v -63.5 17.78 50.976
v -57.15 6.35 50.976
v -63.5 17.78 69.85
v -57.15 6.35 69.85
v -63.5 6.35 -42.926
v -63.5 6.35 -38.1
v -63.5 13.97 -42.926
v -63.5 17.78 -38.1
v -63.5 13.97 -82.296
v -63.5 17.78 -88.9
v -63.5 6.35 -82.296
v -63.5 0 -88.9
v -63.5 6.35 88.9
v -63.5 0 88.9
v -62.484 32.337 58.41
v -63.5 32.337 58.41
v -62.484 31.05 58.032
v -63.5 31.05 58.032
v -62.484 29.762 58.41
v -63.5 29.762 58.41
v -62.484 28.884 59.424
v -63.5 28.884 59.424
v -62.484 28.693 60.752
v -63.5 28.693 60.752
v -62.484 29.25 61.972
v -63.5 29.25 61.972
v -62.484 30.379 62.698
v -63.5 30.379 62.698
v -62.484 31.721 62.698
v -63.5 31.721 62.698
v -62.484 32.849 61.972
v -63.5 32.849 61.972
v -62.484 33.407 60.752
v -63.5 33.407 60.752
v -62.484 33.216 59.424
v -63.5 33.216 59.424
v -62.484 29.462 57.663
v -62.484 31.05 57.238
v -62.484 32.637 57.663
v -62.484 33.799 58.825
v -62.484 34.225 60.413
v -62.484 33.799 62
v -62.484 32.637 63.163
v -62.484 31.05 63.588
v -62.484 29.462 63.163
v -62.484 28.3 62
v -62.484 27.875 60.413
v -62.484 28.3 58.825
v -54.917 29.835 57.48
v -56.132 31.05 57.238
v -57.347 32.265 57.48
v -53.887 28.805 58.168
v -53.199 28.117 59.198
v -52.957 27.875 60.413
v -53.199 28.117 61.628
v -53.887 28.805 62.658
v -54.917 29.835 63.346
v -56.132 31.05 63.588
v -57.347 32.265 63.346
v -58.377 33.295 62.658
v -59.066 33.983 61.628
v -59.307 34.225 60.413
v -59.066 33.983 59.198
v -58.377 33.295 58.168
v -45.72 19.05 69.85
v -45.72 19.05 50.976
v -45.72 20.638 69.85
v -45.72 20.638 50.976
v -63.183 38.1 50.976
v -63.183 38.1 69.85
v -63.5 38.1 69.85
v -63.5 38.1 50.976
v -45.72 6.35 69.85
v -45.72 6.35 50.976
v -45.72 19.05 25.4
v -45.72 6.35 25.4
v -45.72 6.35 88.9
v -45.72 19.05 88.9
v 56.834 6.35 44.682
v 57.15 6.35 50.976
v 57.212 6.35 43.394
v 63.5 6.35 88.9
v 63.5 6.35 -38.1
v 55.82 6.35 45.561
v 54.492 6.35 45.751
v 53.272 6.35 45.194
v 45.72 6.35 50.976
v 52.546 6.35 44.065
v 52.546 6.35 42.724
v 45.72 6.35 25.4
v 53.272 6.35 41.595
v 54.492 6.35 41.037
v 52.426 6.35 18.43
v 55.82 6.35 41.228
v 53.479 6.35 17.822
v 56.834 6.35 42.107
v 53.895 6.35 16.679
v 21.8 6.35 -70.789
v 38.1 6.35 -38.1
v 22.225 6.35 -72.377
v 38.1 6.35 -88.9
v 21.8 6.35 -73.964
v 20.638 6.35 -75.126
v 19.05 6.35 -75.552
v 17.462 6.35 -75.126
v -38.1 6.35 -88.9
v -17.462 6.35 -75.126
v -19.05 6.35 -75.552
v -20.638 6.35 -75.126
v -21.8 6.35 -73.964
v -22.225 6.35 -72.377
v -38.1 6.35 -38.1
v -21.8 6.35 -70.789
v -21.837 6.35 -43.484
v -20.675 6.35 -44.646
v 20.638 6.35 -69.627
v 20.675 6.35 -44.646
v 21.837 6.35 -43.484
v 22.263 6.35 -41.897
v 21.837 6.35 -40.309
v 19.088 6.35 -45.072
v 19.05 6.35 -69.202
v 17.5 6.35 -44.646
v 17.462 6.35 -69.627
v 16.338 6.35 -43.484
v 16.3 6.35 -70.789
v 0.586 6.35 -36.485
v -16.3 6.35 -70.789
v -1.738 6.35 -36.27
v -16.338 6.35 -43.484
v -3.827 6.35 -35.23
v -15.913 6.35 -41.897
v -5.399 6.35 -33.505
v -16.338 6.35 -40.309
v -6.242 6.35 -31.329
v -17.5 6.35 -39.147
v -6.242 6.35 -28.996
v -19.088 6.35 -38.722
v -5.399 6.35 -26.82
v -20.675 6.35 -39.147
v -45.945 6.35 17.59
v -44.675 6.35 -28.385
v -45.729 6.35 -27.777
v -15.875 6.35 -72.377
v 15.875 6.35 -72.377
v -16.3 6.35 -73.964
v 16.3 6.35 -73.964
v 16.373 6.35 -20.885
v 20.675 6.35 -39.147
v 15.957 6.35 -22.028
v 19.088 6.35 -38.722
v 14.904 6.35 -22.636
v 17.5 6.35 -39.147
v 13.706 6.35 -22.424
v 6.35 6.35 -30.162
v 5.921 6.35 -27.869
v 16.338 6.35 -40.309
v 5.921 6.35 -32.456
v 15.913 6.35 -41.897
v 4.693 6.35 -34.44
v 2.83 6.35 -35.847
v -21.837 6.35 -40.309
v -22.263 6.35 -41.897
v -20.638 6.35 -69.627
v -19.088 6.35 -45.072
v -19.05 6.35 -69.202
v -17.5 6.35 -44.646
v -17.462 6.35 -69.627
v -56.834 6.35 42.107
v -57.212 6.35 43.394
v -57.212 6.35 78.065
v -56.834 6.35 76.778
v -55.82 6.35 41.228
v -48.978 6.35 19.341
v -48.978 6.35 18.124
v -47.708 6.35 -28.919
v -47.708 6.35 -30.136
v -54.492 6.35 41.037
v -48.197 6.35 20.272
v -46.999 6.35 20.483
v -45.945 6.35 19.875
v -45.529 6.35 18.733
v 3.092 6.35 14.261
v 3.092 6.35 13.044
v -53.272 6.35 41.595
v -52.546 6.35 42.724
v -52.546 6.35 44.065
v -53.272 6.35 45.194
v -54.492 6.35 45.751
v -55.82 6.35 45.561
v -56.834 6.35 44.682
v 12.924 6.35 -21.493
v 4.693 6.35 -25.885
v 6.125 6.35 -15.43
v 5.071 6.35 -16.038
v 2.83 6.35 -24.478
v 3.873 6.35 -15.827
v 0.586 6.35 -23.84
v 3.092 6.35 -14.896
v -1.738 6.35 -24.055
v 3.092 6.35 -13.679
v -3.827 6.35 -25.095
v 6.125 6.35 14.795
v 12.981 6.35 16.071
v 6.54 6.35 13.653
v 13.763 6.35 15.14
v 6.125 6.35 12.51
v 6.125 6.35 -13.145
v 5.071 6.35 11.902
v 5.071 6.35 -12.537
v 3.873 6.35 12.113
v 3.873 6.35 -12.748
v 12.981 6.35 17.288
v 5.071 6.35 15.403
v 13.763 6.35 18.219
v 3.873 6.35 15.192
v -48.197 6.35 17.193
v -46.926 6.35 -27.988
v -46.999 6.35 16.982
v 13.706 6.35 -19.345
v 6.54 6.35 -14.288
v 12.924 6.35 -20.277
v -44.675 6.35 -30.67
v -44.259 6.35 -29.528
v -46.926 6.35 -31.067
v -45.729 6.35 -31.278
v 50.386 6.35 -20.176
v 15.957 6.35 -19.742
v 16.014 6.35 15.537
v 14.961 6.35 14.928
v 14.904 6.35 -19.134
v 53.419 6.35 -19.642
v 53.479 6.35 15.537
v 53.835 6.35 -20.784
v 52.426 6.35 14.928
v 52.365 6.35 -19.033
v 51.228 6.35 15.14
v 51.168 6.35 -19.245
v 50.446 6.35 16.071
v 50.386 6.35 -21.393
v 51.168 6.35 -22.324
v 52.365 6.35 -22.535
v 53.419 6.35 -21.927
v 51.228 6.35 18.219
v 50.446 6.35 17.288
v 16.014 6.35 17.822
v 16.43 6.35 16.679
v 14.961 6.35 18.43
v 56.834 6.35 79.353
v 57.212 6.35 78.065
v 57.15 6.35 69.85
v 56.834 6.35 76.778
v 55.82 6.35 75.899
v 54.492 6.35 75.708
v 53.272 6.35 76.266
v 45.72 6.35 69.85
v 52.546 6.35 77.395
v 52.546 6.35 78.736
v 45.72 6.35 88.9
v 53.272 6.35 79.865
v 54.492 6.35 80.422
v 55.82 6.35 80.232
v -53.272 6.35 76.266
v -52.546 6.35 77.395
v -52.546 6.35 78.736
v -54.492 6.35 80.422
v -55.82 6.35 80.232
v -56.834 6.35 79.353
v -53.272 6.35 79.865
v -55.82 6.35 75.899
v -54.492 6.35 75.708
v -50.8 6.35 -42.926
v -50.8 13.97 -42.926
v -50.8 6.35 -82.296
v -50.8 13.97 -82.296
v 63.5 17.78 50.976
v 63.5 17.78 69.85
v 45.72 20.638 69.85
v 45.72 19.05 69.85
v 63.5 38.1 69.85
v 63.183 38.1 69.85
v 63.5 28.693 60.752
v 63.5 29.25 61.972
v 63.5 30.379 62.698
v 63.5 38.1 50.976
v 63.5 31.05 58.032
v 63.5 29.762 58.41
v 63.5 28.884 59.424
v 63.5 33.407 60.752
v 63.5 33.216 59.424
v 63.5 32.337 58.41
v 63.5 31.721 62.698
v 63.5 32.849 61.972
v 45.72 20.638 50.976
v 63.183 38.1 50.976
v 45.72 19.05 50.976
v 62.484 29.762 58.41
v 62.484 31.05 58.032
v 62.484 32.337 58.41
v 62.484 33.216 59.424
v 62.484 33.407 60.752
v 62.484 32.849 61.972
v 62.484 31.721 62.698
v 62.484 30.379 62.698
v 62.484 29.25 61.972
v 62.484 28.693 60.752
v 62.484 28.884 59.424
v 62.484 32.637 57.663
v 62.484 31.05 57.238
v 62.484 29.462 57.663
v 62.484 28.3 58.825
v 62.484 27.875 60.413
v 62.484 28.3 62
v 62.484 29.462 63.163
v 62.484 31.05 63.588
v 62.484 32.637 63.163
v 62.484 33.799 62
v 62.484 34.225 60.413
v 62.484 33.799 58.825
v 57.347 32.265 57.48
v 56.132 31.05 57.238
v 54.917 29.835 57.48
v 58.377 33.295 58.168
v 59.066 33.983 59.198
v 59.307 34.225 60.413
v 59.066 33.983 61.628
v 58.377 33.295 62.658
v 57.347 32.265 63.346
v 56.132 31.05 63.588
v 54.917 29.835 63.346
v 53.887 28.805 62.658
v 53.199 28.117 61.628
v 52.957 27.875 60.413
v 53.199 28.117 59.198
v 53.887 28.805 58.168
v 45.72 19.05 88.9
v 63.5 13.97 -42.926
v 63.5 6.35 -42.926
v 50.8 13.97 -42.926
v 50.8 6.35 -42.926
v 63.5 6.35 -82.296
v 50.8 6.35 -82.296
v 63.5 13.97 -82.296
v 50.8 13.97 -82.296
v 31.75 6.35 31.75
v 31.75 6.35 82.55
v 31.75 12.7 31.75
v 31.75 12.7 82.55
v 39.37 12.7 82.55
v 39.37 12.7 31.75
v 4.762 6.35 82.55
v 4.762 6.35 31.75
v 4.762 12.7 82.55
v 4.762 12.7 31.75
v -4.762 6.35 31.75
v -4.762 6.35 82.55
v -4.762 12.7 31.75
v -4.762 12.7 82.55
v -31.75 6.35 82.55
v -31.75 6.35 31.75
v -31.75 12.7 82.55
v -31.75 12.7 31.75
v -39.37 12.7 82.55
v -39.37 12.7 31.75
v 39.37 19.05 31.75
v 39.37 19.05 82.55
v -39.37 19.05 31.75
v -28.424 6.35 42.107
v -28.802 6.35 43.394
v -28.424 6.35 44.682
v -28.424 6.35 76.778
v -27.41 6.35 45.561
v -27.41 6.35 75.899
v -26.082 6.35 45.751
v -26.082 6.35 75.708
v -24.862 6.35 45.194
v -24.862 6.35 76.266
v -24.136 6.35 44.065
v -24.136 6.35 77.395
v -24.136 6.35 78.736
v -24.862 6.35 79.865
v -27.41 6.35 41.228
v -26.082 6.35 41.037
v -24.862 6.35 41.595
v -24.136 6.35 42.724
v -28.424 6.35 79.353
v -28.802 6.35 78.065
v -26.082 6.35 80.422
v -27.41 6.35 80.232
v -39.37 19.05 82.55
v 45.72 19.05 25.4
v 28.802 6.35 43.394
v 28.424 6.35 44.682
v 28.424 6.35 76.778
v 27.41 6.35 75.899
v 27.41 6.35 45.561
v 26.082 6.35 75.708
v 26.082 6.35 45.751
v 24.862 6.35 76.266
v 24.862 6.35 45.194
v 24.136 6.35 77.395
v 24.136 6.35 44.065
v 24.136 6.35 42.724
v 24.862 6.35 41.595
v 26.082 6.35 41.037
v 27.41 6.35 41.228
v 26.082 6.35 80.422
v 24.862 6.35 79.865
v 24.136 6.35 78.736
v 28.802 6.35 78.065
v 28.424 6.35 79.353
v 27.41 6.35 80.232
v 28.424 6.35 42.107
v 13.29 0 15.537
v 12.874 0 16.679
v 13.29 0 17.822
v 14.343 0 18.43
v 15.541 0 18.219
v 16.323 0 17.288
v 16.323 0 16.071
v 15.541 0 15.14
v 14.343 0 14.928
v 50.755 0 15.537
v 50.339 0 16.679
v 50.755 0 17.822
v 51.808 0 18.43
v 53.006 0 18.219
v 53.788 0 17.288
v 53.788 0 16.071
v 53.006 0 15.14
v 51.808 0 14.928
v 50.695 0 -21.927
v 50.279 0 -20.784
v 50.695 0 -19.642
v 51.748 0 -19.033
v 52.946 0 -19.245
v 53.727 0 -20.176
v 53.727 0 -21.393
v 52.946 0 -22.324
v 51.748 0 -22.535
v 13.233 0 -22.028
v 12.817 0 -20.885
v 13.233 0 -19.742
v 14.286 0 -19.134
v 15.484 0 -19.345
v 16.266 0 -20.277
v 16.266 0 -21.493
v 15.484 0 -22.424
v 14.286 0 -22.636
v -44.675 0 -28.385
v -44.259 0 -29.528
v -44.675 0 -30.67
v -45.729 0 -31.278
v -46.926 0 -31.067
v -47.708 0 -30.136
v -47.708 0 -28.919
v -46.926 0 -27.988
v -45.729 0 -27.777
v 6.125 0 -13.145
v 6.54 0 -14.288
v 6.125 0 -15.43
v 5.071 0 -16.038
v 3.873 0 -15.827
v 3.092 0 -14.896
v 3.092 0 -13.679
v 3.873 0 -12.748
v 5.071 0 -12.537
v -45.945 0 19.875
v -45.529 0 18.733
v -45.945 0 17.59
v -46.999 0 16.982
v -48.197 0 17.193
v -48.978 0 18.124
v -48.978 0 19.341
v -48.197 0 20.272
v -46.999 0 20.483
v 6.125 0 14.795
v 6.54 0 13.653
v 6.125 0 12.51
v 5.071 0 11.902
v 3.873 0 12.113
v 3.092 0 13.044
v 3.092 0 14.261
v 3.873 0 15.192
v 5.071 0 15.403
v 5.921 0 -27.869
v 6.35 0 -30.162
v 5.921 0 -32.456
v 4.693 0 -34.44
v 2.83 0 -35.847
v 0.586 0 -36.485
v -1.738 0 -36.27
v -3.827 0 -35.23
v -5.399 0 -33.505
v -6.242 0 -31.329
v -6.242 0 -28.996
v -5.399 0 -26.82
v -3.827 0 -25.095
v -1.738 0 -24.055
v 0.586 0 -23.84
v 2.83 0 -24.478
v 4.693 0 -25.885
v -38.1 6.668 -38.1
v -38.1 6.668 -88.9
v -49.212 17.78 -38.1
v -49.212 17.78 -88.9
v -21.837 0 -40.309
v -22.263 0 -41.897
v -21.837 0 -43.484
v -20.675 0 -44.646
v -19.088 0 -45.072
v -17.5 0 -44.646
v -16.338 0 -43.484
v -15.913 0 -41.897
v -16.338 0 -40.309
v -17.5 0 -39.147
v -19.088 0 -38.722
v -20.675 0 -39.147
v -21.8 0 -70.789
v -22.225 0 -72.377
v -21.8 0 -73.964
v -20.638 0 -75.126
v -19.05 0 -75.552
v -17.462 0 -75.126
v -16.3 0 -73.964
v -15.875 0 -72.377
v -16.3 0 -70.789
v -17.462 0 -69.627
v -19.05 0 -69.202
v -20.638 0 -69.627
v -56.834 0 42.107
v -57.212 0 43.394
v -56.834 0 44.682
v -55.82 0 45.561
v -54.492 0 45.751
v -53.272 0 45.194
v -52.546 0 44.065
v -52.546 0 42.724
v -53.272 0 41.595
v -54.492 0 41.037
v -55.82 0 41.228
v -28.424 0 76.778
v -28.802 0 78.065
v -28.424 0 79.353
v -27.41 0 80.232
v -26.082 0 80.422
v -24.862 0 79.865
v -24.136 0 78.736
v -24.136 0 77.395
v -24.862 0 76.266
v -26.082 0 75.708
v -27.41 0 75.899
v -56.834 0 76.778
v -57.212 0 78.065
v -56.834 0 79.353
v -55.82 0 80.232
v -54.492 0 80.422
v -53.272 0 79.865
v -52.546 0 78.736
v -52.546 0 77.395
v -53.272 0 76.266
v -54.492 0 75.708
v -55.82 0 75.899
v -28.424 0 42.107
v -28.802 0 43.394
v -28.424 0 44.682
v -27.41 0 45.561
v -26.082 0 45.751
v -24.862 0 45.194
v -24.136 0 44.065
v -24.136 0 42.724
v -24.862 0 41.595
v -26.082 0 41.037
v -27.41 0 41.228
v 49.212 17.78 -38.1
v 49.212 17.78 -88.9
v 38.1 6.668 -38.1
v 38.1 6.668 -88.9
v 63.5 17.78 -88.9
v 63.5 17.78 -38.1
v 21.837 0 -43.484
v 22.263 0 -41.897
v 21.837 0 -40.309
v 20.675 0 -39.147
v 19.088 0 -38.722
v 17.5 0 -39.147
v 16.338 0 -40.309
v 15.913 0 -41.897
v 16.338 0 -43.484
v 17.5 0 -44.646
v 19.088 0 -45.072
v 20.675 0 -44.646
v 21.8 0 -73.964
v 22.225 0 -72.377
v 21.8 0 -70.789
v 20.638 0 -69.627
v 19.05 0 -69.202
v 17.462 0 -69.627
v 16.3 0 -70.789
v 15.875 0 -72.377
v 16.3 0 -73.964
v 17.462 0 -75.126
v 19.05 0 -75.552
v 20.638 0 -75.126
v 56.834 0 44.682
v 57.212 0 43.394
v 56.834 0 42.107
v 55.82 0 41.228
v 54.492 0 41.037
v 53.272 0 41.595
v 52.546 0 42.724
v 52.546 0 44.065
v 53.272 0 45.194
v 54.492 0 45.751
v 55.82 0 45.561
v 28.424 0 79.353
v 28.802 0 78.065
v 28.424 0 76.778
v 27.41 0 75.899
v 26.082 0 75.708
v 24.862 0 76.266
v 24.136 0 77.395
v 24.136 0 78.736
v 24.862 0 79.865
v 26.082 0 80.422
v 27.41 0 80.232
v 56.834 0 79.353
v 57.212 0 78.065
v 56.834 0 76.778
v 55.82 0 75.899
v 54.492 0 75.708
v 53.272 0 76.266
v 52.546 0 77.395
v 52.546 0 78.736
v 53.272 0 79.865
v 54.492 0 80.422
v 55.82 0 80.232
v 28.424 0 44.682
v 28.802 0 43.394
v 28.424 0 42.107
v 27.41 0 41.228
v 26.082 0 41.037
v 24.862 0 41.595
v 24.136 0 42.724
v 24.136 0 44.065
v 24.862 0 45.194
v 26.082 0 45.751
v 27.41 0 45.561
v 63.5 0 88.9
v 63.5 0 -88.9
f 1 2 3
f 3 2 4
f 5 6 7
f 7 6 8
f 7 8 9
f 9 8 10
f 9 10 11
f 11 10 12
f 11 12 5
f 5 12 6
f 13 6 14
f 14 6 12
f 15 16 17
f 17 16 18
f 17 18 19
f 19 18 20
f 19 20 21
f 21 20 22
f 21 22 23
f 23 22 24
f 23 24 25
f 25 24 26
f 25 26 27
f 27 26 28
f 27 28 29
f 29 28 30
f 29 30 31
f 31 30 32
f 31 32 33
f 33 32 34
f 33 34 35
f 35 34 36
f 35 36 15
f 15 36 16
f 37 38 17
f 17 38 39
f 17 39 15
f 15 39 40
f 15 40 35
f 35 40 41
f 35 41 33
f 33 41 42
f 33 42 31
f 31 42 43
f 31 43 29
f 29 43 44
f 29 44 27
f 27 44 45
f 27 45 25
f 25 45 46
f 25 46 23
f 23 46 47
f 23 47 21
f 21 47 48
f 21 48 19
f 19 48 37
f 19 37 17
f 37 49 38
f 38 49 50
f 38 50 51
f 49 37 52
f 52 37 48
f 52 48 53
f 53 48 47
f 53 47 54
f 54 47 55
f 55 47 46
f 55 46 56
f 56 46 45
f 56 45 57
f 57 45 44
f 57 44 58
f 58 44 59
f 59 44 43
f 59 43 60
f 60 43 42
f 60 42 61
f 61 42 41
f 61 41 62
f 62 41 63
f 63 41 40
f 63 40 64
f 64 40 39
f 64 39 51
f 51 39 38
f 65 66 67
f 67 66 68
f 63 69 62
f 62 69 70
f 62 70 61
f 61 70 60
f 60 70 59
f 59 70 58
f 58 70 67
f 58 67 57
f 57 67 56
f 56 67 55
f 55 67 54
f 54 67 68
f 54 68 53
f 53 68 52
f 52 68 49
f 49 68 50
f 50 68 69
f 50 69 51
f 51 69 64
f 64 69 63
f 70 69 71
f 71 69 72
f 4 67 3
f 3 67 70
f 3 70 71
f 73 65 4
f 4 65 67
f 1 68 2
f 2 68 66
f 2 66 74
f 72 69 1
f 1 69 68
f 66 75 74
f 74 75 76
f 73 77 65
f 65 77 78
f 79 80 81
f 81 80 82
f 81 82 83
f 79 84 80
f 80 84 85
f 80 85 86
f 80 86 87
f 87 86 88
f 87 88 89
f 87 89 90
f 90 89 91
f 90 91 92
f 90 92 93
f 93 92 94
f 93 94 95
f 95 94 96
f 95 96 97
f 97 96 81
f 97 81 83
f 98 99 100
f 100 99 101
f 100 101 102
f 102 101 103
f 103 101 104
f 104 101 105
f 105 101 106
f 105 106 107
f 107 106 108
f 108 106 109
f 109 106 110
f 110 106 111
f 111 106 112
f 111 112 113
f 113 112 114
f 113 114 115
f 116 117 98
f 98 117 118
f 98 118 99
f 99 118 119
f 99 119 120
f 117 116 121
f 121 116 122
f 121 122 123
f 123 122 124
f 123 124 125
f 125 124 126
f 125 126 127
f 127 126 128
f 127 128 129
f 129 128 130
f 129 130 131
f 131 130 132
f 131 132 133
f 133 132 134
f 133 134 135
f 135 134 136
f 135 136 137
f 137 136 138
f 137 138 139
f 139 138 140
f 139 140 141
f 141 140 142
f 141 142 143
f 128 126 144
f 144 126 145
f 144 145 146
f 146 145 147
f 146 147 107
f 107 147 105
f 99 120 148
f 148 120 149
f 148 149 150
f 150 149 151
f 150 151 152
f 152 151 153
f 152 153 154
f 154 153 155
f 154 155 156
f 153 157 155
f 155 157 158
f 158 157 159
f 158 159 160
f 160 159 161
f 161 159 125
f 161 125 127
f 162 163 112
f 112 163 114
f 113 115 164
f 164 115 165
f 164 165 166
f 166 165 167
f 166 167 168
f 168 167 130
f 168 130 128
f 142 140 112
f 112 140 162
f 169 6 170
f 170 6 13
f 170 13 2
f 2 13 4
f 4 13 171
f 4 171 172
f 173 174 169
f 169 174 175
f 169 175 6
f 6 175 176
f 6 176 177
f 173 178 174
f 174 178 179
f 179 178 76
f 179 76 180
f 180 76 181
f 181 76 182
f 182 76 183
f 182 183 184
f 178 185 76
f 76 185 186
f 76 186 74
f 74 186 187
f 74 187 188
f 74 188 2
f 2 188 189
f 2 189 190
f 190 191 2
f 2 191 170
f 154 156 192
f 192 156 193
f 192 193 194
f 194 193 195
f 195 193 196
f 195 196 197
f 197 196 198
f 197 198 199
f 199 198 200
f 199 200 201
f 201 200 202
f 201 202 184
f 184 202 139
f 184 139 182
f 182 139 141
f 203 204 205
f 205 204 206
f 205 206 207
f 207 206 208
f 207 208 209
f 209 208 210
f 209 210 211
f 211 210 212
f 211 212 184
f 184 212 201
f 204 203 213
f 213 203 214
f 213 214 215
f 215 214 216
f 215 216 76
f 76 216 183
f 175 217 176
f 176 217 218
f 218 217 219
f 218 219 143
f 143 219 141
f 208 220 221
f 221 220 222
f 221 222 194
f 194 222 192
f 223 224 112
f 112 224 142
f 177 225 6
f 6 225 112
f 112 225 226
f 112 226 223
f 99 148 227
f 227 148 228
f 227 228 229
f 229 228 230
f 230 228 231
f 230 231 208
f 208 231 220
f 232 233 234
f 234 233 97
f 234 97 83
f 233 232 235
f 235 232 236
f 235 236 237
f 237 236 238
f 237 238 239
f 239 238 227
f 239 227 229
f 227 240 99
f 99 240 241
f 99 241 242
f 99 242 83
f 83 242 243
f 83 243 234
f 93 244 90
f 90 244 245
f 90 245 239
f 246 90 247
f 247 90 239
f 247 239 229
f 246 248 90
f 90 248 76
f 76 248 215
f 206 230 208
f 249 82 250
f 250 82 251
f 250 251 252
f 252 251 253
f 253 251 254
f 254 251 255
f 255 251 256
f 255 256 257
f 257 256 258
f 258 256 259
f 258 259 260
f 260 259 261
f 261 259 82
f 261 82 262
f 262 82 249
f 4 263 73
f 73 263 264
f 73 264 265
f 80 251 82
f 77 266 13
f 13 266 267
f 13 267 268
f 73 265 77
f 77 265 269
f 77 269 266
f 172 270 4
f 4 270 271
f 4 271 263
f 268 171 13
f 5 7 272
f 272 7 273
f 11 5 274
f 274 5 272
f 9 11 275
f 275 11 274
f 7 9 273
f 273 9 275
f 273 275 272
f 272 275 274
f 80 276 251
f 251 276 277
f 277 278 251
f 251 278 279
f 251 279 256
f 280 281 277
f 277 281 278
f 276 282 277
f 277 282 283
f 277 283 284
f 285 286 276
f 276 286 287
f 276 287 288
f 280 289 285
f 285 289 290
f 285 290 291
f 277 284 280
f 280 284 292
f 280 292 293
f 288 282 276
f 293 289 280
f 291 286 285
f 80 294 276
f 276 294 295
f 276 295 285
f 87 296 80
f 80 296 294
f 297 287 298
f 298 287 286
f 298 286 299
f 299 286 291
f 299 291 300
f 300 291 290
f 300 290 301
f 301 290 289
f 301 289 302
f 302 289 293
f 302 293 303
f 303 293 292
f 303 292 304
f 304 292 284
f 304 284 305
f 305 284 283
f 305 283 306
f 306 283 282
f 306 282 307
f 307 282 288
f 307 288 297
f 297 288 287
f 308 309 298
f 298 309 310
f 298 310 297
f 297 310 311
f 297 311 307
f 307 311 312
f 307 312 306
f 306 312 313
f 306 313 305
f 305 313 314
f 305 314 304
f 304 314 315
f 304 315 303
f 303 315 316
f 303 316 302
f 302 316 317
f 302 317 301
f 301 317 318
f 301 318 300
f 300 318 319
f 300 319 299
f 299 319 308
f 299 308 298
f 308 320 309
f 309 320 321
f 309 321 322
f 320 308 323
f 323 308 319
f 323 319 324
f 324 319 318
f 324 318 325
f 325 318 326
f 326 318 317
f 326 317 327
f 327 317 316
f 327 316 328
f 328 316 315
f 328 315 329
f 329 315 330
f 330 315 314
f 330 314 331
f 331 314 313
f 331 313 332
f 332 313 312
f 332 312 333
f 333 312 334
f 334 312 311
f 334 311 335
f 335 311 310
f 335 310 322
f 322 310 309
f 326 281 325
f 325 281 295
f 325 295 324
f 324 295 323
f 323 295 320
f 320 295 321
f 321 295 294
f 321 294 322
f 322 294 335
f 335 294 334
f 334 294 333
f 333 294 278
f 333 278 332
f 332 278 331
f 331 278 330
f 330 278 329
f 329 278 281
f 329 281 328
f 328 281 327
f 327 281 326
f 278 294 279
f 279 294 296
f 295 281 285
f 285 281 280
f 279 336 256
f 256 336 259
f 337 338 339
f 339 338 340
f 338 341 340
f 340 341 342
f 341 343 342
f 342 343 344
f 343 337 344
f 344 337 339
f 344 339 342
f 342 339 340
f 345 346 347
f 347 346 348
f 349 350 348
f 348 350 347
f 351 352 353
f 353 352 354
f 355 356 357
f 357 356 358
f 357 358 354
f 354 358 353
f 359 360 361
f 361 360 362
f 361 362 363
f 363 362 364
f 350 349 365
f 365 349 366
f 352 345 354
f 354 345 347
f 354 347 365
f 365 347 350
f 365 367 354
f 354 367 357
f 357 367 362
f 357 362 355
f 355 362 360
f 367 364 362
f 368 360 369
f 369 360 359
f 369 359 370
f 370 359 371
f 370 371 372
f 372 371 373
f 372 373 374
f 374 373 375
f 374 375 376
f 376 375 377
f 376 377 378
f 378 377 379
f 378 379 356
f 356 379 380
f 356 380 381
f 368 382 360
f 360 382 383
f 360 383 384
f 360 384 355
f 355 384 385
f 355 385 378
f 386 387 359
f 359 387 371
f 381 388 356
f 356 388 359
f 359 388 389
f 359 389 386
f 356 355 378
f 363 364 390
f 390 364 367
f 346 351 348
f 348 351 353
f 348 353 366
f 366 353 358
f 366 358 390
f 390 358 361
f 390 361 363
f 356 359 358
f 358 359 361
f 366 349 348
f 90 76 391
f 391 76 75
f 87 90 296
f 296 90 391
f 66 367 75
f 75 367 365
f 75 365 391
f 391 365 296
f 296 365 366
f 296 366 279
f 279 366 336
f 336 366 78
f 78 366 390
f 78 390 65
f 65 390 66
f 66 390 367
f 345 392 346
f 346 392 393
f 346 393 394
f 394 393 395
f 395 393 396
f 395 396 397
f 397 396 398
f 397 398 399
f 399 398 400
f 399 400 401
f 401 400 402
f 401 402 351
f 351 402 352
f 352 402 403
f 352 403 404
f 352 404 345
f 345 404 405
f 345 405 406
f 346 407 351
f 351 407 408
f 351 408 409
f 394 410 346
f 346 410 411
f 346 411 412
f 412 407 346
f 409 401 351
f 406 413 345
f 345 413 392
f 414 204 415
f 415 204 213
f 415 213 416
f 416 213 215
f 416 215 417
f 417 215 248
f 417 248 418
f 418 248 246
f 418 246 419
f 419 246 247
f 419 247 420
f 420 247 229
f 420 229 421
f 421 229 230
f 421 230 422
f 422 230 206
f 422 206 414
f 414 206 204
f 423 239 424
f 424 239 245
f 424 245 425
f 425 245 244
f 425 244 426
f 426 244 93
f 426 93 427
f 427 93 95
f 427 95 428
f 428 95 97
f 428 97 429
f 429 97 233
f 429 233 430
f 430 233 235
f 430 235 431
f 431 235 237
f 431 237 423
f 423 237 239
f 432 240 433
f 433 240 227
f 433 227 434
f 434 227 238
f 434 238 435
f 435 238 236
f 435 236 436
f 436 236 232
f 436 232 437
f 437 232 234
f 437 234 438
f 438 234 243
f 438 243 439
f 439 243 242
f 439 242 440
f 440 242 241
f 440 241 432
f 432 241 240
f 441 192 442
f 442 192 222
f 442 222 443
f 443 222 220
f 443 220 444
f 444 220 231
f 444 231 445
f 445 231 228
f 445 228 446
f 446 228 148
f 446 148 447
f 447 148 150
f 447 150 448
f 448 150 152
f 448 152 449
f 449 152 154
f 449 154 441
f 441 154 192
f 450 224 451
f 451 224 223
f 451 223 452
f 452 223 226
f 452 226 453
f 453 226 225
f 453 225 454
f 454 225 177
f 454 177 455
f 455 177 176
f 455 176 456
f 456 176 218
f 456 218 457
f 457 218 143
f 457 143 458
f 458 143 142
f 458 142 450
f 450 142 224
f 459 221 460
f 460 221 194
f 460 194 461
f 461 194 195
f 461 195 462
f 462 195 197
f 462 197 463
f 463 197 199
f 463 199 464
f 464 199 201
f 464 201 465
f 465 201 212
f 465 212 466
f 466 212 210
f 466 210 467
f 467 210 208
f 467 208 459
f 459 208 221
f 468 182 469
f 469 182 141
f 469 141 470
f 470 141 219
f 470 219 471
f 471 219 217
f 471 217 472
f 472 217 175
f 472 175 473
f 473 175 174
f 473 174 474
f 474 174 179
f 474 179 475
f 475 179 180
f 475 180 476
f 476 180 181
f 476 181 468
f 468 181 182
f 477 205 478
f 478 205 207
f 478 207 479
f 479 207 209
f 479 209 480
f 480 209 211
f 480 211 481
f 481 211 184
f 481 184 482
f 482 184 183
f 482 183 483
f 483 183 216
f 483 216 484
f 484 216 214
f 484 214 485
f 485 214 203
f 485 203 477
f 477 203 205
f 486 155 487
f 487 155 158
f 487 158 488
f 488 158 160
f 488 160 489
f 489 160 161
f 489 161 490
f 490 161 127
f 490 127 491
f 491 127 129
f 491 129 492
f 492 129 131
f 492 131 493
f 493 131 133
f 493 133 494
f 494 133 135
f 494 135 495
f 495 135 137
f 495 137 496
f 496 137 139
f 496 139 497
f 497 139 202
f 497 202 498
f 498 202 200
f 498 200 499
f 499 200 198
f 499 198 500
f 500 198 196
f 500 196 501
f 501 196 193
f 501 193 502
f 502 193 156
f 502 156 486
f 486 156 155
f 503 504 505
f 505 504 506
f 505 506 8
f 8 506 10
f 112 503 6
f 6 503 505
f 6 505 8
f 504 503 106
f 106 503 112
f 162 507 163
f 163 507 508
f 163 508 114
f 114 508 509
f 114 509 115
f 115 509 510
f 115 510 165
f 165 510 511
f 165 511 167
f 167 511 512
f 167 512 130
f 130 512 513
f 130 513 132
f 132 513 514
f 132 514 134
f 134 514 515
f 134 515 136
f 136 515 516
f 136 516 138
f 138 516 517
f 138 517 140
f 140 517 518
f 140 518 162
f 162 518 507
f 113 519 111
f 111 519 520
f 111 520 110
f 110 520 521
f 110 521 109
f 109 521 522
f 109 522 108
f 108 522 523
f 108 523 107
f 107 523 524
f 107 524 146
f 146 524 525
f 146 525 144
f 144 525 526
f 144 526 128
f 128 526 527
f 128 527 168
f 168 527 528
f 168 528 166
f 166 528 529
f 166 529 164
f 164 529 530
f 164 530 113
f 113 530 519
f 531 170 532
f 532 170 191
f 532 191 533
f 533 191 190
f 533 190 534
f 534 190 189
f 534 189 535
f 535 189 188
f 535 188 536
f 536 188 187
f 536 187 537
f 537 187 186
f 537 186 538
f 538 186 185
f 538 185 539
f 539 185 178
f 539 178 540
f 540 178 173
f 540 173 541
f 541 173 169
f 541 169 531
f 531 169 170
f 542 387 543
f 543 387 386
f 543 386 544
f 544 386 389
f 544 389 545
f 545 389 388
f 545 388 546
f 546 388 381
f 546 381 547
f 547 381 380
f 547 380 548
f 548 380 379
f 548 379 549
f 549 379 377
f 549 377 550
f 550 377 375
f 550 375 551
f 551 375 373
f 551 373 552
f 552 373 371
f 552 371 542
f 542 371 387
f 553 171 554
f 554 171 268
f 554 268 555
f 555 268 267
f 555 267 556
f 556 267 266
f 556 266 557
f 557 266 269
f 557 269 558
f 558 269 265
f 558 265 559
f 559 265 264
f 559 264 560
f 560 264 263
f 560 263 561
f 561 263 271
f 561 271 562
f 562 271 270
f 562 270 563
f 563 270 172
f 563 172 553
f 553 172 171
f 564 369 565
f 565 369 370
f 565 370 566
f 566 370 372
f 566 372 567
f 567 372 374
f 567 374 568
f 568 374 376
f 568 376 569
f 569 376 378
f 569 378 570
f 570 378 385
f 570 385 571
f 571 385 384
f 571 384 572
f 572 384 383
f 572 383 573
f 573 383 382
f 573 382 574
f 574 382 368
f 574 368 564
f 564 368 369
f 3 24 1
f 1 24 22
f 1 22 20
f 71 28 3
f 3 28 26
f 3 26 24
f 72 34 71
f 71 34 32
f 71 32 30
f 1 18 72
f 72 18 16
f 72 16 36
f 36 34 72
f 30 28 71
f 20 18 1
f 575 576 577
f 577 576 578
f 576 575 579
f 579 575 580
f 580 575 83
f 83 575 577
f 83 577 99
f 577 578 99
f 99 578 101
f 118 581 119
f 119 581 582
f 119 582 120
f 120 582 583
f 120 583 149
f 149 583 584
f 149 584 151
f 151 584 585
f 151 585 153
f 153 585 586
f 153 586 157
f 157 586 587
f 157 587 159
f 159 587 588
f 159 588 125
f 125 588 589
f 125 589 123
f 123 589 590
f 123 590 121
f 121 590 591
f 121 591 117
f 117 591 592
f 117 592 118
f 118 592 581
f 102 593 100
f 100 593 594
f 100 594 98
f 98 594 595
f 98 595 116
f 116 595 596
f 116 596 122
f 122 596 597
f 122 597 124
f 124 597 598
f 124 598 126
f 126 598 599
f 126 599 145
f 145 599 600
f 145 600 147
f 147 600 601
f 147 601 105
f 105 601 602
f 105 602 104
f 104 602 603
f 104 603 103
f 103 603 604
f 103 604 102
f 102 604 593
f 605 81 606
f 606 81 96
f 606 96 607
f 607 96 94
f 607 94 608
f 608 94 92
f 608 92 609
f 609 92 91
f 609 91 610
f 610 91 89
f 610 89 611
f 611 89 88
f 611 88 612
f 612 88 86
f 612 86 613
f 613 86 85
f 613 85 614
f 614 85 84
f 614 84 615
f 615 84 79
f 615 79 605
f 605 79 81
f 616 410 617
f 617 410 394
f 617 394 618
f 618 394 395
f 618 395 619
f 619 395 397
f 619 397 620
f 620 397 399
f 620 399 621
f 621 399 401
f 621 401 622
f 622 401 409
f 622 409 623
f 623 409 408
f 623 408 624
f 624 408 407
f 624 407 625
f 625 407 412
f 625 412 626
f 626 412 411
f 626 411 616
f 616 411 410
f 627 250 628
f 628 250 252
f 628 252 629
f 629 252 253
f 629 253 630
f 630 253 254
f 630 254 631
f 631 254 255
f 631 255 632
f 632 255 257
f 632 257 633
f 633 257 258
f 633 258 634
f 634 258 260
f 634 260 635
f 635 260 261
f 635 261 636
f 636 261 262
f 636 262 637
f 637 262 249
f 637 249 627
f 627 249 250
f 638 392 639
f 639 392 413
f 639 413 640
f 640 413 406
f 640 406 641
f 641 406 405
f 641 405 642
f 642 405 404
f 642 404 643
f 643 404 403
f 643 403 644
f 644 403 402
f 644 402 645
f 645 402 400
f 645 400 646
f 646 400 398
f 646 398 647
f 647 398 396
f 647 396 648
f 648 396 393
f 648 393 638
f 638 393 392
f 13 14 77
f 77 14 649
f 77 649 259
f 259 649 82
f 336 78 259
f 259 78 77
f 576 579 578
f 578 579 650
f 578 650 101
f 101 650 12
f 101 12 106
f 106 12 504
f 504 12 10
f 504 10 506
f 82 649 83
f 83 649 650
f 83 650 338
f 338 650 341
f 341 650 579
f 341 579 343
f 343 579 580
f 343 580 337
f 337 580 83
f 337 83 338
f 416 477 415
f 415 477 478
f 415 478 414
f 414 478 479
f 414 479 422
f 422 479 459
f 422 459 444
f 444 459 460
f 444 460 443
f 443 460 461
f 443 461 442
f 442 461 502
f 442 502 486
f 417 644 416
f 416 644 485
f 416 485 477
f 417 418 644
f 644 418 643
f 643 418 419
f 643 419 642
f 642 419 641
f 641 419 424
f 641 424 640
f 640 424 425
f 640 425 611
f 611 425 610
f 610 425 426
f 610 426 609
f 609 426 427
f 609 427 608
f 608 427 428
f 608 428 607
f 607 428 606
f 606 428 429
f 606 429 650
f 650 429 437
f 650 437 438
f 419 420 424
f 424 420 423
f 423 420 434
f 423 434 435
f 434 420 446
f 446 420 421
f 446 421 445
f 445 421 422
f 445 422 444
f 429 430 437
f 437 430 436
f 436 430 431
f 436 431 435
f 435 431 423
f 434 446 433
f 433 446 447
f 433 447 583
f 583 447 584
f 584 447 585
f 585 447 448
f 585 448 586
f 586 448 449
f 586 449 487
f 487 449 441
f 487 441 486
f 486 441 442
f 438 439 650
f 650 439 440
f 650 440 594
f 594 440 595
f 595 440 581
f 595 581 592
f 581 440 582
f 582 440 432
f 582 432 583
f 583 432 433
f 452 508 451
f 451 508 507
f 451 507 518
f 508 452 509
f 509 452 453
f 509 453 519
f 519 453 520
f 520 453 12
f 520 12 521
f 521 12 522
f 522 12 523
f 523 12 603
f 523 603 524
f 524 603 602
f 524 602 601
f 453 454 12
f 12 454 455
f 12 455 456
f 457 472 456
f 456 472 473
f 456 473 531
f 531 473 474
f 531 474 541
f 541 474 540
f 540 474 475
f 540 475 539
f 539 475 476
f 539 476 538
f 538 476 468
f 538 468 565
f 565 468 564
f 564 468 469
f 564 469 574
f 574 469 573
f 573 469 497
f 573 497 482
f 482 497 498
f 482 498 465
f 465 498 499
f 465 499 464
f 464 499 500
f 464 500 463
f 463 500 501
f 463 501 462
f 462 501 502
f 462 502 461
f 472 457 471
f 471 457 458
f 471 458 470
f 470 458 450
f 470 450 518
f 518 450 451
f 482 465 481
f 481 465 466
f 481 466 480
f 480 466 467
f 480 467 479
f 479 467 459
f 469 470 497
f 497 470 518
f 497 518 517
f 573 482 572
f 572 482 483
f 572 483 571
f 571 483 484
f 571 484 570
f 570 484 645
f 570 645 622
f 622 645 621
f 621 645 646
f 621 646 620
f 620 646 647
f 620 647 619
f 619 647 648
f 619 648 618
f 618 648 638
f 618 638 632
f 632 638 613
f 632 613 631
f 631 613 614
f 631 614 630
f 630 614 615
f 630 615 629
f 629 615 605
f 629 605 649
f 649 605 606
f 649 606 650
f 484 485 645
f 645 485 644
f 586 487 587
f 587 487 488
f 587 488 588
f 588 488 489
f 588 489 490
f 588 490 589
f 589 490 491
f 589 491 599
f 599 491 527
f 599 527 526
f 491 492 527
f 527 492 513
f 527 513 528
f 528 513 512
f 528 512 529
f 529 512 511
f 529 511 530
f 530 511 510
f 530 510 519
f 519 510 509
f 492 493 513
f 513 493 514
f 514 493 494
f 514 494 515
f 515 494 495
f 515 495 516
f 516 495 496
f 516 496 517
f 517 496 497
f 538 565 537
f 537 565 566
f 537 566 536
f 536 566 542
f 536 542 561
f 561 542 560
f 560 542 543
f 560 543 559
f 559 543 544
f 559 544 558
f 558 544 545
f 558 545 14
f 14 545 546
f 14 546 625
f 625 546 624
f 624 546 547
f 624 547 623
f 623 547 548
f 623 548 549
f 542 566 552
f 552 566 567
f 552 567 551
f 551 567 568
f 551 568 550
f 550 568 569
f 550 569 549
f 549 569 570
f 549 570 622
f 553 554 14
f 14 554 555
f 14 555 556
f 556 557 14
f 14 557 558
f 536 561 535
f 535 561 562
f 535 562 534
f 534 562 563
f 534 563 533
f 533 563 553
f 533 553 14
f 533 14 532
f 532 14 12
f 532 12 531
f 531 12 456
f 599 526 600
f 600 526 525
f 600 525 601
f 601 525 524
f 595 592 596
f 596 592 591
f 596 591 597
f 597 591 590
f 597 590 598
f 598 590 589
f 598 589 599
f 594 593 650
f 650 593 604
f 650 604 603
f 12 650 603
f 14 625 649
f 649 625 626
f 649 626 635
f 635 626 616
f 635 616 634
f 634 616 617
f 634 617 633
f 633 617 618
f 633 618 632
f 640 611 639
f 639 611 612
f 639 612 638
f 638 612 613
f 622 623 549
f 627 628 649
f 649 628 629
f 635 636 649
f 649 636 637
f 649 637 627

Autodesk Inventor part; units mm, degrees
ref_plane "YZ Plane" through (0, 0, 0) normal (1, 0, 0) x (0, 1, 0)
ref_plane "XZ Plane" through (0, 0, 0) normal (0, 1, 0) x (-1, 0, 0)
ref_plane "XY Plane" through (0, 0, 0) normal (0, 0, 1) x (1, 0, 0)
sketch "Sketch1" plane through (0, 0, 0) normal (0, 1, 0) x (-1, 0, 0)
  line L0 (63.5, 88.9) -> (-63.5, 88.9)
  line L1 (-63.5, 88.9) -> (-63.5, -88.9)
  line L2 (-63.5, -88.9) -> (63.5, -88.9)
  line L3 (63.5, -88.9) -> (63.5, 88.9)
  line L4 (63.5, 88.9) -> (-63.5, -88.9) construction
  line L5 (-63.5, 88.9) -> (63.5, -88.9) construction
  point P0 (0, 0)
  dimension "d0" = 177.8
  dimension "d1" = 127
extrude "main chassis frame" add sketch "Sketch1" along normal blind 6.35
sketch "Sketch4" plane through (0, 6.35, 0) normal (0, 1, 0) x (1, 0, 0)
  circle A0 centre (54.8311, -78.0654) radius 2.3812
  circle A1 centre (54.8311, -43.3944) radius 2.3812
  line L0 (54.8311, -75.6842) -> (54.8311, -45.7757) construction
  circle A2 centre (26.4212, -78.0654) radius 2.3812
  circle A3 centre (26.4212, -43.3944) radius 2.3812
  line L1 (26.4212, -75.6842) -> (26.4212, -45.7757) construction
  line L2 (28.8024, -78.0654) -> (52.4498, -78.0654) construction
  point P0 (0, 0)
  dimension "d19" = 4.7625
  dimension "d165" = 4.7625
  dimension "d164" = 29.9085
  dimension "d166" = 29.9085
  dimension "d167" = 23.6474
extrude "mounting holes for caster" cut sketch "Sketch4" against normal blind 6.35
sketch "Sketch5" plane through (0, 6.35, 0) normal (0, 1, 0) x (1, 0, 0)
  line L0 (63.5, 88.9) -> (-63.5, 88.9) projected
  line L1 (-63.5, -88.9) -> (63.5, -88.9) projected
  line L2 (0, 88.9) -> (-63.5, 88.9)
  line L3 (-63.5, 88.9) -> (-63.5, -88.9)
  line L4 (-63.5, -88.9) -> (0, -88.9)
  line L5 (0, -88.9) -> (0, 88.9)
  point P0 (0, 0)
  point P1 (-63.5, 88.9)
extrude "cut in half to mirror holes later" cut sketch "Sketch5" against normal blind 6.35
sketch "Sketch6" plane through (0, 0, 0) normal (0, -1, 0) x (1, 0, 0)
  circle A0 centre (19.05, -72.3766) radius 3.175
  line L0 (63.5378, -72.3766) -> (19.0878, -72.3766) construction
  line L1 (19.0878, -72.3766) -> (19.0878, -41.8966) construction
  circle A1 centre (19.0878, -41.8966) radius 3.175
  point P0 (0, 0)
  dimension "d26" = 44.45
  dimension "d27" = 6.35
  dimension "d28" = 30.48
  dimension "d29" = 6.35
extrude "zip tie mounting holes for motors" cut sketch "Sketch6" against normal blind 6.35
sketch "Sketch12" plane through (0, 6.35, 0) normal (0, 1, 0) x (1, 0, 0)
  line L0 (63.5, 88.9) -> (0, 88.9) projected
  line L1 (63.5, 88.9) -> (38.1, 88.9)
  line L2 (38.1, 88.9) -> (38.1, 38.1)
  line L3 (38.1, 38.1) -> (63.5, 38.1)
  line L4 (63.5, 38.1) -> (63.5, 88.9)
  point P0 (0, 0)
  dimension "d227" = 50.8
  dimension "d228" = 25.4
extrude "motor mount covers" add sketch "Sketch12" along normal blind 11.43
chamfer "motor mount slants" distance 11.1125 angle 45 1 edges at (38.1, 17.78, -63.5)
mirror "Mirror6" about plane through (0, 0, 0) normal (1, 0, 0)
sketch "Sketch22" plane through (0, 6.35, 0) normal (0, 1, 0) x (1, 0, 0)
  circle A0 centre (0, 30.1625) radius 6.35
  point P0 (0, 0)
extrude "new hole for motor wires" cut sketch "Sketch22" against normal blind 6.35
sketch "arduino uno mounting holes" plane through (0, 6.35, 0) normal (0, 1, 0) x (1, 0, 0)
  line L0 (-63.5, -88.9) -> (-63.5, 88.9) projected
  line L1 (-58.42, -17.7229) -> (-58.42, 33.0771) construction
  circle A0 centre (-46.0375, 29.5275) radius 1.778
  circle A1 centre (-47.3075, -18.7325) radius 1.778
  circle A2 centre (4.7625, 14.2875) radius 1.778
  circle A3 centre (4.7625, -13.6525) radius 1.778
  line L2 (-46.0375, 34.2699) -> (-46.0375, -23.7548) construction
  line L3 (-47.3075, -22.4854) -> (-47.3075, 33.7972) construction
  line L4 (4.7625, -21.8575) -> (4.7625, 22.1977) construction
  line L5 (15.8332, 14.2875) -> (-15.1882, 14.2875) construction
  line L6 (-52.07, 29.5275) -> (-2.2478, 29.5275) construction
  line L7 (11.43, -13.6525) -> (-14.3019, -13.6525) construction
  line L8 (-51.7639, -18.7325) -> (-2.8575, -18.7325) construction
  point P0 (0, 0)
  dimension "d186" = 3.556
  dimension "d219" = 1.27
  dimension "d220" = 15.24
  dimension "d221" = 27.94
  dimension "d222" = 5.08
  dimension "d223" = 50.8
extrude "uno mounting holes" cut sketch "arduino uno mounting holes" against normal blind 6.35
sketch "motor mount holes sketch" plane through (0, 6.35, 0) normal (0, 1, 0) x (1, 0, 0)
  line L0 (12.2391, 24.4663) -> (55.7366, 24.4663) construction
  line L1 (55.7366, 24.4663) -> (55.7366, -19.0312) construction
  line L2 (55.7366, -19.0312) -> (12.2391, -19.0312) construction
  line L3 (12.2391, -19.0312) -> (12.2391, 24.4663) construction
  circle A0 centre (52.0566, 20.7844) radius 1.778
  line L4 (52.1191, 22.5613) -> (52.1191, 24.4663) construction
  line L5 (53.8316, 20.8881) -> (55.7366, 20.8881) construction
  circle A1 centre (14.5948, 20.8847) radius 1.778
  line L6 (16.206, 21.6364) -> (50.496, 21.6364) construction
  circle A2 centre (52.1171, -16.6794) radius 1.778
  line L7 (52.888, -15.0773) -> (52.888, 19.2127) construction
  circle A3 centre (14.6521, -16.6794) radius 1.778
  line L8 (16.2396, -15.8787) -> (50.5296, -15.8787) construction
  point P0 (0, 0)
  dimension "d224" = 3.556
  dimension "d208" = 43.4975
  dimension "d209" = 43.4975
  dimension "d210" = 1.905
  dimension "d211" = 1.905
  dimension "d214" = 34.29
  dimension "d215" = 34.29
  dimension "d216" = 34.29
extrude "L298N mount holes" cut sketch "motor mount holes sketch" against normal blind 6.6675
sketch "Sketch33" plane through (0, 6.35, 0) normal (0, 1, 0) x (1, 0, 0)
  line L0 (-45.72, -25.4) -> (45.72, -25.4)
  line L1 (45.72, -25.4) -> (45.72, -88.9)
  line L2 (45.72, -88.9) -> (-45.72, -88.9)
  line L3 (-45.72, -88.9) -> (-45.72, -25.4)
  line L4 (-39.37, -31.75) -> (39.37, -31.75)
  line L5 (39.37, -31.75) -> (39.37, -82.55)
  line L6 (39.37, -82.55) -> (-39.37, -82.55)
  line L7 (-39.37, -82.55) -> (-39.37, -31.75)
  line L8 (-45.72, -60.325) -> (-63.5, -60.325) construction
  line L9 (-63.5, -88.9) -> (-63.5, 88.9) projected
  line L10 (45.72, -65.0875) -> (63.5, -65.0875) construction
  line L11 (63.5, -88.9) -> (63.5, 88.9) projected
  line L12 (-63.5, -88.9) -> (63.5, -88.9) projected
  point P0 (0, 0)
  dimension "d235" = 63.5
  dimension "d236" = 50.8
  dimension "d237" = 91.44
  dimension "d238" = 78.74
  dimension "d239" = 6.35
  dimension "d240" = 6.35
  dimension "d241" = 6.35
  dimension "d242" = 6.35
extrude "battery walls" add sketch "Sketch33" along normal blind 12.7
sketch "Sketch34" plane through (0, 6.35, 0) normal (0, 1, 0) x (1, 0, 0)
  line L0 (39.37, -31.75) -> (-39.37, -31.75) projected
  line L1 (-39.37, -82.55) -> (39.37, -82.55) projected
  line L2 (-31.75, -31.75) -> (-39.37, -31.75)
  line L3 (-39.37, -31.75) -> (-39.37, -82.55)
  line L4 (-39.37, -82.55) -> (-31.75, -82.55)
  line L5 (-31.75, -82.55) -> (-31.75, -31.75)
  line L6 (39.37, -82.55) -> (39.37, -31.75) projected
  line L7 (39.37, -31.75) -> (31.75, -31.75)
  line L8 (31.75, -31.75) -> (31.75, -82.55)
  line L9 (31.75, -82.55) -> (39.37, -82.55)
  line L10 (39.37, -82.55) -> (39.37, -31.75)
  line L11 (4.7625, -31.75) -> (-4.7625, -31.75)
  line L12 (-4.7625, -31.75) -> (-4.7625, -82.55)
  line L13 (-4.7625, -82.55) -> (4.7625, -82.55)
  line L14 (4.7625, -82.55) -> (4.7625, -31.75)
  point P0 (0, 0)
extrude "battery inner walls" add sketch "Sketch34" along normal blind 6.35 contours L6 L1 L8 L0 | L14 L1 L12 L0 | L5 L1 L3 L0
sketch "Sketch32" plane through (63.5, 0, 88.9) normal (1, 0, 0) x (0, 0, -1)
  line L0 (171.196, 6.35) -> (131.826, 6.35)
  line L1 (131.826, 6.35) -> (131.826, 13.97)
  line L2 (131.826, 13.97) -> (171.196, 13.97)
  line L3 (171.196, 13.97) -> (171.196, 6.35)
  line L4 (171.196, 10.16) -> (177.8, 10.16) construction
  line L5 (177.8, 0) -> (177.8, 17.78) projected
  line L6 (131.826, 9.8881) -> (127, 9.8881) construction
  line L7 (127, 6.35) -> (127, 17.78) projected
  line L8 (0, 6.35) -> (127, 6.35) projected
  point P0 (88.9, 0)
  dimension "d225" = 39.37
  dimension "d226" = 7.62
  dimension "d268" = 6.604
extrude "motor mount slot - R" cut sketch "Sketch32" against normal blind 12.7
sketch "Sketch36" plane through (0, 6.35, 0) normal (0, 1, 0) x (1, 0, 0)
  line L0 (45.72, -88.9) -> (45.72, -25.4) projected
  line L1 (63.5, -88.9) -> (63.5, 88.9) projected
  line L2 (45.72, -69.85) -> (63.5, -69.85)
  line L3 (63.5, -69.85) -> (63.5, -50.9759)
  line L4 (63.5, -50.9759) -> (45.72, -50.9759)
  line L5 (45.72, -50.9759) -> (45.72, -69.85)
  point P0 (0, 0)
extrude "side panel mount pillar" add sketch "Sketch36" along normal blind 31.75
chamfer "side panel mount pillar slant" distance 17.4625 angle 45 1 edges at (45.72, 38.1, 60.4129)
sketch "side panel mount hole" plane through (63.5, 0, 88.9) normal (1, 0, 0) x (0, 0, -1)
  circle A0 centre (28.4871, 31.0499) radius 2.3812
  line L0 (28.4871, 31.0499) -> (19.05, 31.0499) construction
  line L1 (19.05, 6.35) -> (19.05, 38.1) projected
  line L2 (28.4871, 31.0499) -> (37.9241, 31.0499) construction
  line L3 (37.9241, 6.35) -> (37.9241, 38.1) projected
  circle A1 centre (28.4871, 31.0499) radius 3.175
  point P0 (88.9, 0)
  dimension "d256" = 4.7625
  dimension "d257" = 6.35
extrude "side panel mount pillar hole - R" cut sketch "side panel mount hole" against normal blind 14.2875 contours A0 | A1
extrude "side panel mount pillar hole rim - R" add sketch "side panel mount hole" against normal blind 1.016
sketch "Sketch38" plane through (45.72, 6.35, 69.85) normal (0, 0, 1) x (1, 0, 0)
  line L0 (17.78, 0) -> (17.78, 11.43) projected
  line L1 (17.78, 11.43) -> (11.43, 0)
  line L2 (17.78, 0) -> (5.08, 0) projected
  point P0 (-45.72, -6.35)
extrude "side panel mount pillar wire passageway - R" cut sketch "Sketch38" against normal blind 19.6215
mirror "Mirror7" about plane through (0, 0, 0) normal (1, 0, 0) of "motor mount slot - R", "side panel mount pillar", "side panel mount pillar slant", "side panel mount pillar hole - R", "side panel mount pillar hole rim - R", "side panel mount pillar wire passageway - R"
sketch "side panel hole dimensions" plane through (63.5, 0, 88.9) normal (1, 0, 0) x (0, 0, -1)
  line L0 (0, 0) -> (0, 6.35) projected
  line L1 (19.05, 17.78) -> (19.05, 38.1) projected
  circle A0 centre (28.4871, 31.0499) radius 2.3812 projected
  line L2 (177.8, 0) -> (177.8, 17.78) projected
  point P0 (88.9, 0)
  dimension "d264" = 19.05
  dimension "d265" = 9.4371
  dimension "d266" = 28.4871
  dimension "d267" = 149.3129
properties part number "chassis" material "Plastic, Opaque White"
